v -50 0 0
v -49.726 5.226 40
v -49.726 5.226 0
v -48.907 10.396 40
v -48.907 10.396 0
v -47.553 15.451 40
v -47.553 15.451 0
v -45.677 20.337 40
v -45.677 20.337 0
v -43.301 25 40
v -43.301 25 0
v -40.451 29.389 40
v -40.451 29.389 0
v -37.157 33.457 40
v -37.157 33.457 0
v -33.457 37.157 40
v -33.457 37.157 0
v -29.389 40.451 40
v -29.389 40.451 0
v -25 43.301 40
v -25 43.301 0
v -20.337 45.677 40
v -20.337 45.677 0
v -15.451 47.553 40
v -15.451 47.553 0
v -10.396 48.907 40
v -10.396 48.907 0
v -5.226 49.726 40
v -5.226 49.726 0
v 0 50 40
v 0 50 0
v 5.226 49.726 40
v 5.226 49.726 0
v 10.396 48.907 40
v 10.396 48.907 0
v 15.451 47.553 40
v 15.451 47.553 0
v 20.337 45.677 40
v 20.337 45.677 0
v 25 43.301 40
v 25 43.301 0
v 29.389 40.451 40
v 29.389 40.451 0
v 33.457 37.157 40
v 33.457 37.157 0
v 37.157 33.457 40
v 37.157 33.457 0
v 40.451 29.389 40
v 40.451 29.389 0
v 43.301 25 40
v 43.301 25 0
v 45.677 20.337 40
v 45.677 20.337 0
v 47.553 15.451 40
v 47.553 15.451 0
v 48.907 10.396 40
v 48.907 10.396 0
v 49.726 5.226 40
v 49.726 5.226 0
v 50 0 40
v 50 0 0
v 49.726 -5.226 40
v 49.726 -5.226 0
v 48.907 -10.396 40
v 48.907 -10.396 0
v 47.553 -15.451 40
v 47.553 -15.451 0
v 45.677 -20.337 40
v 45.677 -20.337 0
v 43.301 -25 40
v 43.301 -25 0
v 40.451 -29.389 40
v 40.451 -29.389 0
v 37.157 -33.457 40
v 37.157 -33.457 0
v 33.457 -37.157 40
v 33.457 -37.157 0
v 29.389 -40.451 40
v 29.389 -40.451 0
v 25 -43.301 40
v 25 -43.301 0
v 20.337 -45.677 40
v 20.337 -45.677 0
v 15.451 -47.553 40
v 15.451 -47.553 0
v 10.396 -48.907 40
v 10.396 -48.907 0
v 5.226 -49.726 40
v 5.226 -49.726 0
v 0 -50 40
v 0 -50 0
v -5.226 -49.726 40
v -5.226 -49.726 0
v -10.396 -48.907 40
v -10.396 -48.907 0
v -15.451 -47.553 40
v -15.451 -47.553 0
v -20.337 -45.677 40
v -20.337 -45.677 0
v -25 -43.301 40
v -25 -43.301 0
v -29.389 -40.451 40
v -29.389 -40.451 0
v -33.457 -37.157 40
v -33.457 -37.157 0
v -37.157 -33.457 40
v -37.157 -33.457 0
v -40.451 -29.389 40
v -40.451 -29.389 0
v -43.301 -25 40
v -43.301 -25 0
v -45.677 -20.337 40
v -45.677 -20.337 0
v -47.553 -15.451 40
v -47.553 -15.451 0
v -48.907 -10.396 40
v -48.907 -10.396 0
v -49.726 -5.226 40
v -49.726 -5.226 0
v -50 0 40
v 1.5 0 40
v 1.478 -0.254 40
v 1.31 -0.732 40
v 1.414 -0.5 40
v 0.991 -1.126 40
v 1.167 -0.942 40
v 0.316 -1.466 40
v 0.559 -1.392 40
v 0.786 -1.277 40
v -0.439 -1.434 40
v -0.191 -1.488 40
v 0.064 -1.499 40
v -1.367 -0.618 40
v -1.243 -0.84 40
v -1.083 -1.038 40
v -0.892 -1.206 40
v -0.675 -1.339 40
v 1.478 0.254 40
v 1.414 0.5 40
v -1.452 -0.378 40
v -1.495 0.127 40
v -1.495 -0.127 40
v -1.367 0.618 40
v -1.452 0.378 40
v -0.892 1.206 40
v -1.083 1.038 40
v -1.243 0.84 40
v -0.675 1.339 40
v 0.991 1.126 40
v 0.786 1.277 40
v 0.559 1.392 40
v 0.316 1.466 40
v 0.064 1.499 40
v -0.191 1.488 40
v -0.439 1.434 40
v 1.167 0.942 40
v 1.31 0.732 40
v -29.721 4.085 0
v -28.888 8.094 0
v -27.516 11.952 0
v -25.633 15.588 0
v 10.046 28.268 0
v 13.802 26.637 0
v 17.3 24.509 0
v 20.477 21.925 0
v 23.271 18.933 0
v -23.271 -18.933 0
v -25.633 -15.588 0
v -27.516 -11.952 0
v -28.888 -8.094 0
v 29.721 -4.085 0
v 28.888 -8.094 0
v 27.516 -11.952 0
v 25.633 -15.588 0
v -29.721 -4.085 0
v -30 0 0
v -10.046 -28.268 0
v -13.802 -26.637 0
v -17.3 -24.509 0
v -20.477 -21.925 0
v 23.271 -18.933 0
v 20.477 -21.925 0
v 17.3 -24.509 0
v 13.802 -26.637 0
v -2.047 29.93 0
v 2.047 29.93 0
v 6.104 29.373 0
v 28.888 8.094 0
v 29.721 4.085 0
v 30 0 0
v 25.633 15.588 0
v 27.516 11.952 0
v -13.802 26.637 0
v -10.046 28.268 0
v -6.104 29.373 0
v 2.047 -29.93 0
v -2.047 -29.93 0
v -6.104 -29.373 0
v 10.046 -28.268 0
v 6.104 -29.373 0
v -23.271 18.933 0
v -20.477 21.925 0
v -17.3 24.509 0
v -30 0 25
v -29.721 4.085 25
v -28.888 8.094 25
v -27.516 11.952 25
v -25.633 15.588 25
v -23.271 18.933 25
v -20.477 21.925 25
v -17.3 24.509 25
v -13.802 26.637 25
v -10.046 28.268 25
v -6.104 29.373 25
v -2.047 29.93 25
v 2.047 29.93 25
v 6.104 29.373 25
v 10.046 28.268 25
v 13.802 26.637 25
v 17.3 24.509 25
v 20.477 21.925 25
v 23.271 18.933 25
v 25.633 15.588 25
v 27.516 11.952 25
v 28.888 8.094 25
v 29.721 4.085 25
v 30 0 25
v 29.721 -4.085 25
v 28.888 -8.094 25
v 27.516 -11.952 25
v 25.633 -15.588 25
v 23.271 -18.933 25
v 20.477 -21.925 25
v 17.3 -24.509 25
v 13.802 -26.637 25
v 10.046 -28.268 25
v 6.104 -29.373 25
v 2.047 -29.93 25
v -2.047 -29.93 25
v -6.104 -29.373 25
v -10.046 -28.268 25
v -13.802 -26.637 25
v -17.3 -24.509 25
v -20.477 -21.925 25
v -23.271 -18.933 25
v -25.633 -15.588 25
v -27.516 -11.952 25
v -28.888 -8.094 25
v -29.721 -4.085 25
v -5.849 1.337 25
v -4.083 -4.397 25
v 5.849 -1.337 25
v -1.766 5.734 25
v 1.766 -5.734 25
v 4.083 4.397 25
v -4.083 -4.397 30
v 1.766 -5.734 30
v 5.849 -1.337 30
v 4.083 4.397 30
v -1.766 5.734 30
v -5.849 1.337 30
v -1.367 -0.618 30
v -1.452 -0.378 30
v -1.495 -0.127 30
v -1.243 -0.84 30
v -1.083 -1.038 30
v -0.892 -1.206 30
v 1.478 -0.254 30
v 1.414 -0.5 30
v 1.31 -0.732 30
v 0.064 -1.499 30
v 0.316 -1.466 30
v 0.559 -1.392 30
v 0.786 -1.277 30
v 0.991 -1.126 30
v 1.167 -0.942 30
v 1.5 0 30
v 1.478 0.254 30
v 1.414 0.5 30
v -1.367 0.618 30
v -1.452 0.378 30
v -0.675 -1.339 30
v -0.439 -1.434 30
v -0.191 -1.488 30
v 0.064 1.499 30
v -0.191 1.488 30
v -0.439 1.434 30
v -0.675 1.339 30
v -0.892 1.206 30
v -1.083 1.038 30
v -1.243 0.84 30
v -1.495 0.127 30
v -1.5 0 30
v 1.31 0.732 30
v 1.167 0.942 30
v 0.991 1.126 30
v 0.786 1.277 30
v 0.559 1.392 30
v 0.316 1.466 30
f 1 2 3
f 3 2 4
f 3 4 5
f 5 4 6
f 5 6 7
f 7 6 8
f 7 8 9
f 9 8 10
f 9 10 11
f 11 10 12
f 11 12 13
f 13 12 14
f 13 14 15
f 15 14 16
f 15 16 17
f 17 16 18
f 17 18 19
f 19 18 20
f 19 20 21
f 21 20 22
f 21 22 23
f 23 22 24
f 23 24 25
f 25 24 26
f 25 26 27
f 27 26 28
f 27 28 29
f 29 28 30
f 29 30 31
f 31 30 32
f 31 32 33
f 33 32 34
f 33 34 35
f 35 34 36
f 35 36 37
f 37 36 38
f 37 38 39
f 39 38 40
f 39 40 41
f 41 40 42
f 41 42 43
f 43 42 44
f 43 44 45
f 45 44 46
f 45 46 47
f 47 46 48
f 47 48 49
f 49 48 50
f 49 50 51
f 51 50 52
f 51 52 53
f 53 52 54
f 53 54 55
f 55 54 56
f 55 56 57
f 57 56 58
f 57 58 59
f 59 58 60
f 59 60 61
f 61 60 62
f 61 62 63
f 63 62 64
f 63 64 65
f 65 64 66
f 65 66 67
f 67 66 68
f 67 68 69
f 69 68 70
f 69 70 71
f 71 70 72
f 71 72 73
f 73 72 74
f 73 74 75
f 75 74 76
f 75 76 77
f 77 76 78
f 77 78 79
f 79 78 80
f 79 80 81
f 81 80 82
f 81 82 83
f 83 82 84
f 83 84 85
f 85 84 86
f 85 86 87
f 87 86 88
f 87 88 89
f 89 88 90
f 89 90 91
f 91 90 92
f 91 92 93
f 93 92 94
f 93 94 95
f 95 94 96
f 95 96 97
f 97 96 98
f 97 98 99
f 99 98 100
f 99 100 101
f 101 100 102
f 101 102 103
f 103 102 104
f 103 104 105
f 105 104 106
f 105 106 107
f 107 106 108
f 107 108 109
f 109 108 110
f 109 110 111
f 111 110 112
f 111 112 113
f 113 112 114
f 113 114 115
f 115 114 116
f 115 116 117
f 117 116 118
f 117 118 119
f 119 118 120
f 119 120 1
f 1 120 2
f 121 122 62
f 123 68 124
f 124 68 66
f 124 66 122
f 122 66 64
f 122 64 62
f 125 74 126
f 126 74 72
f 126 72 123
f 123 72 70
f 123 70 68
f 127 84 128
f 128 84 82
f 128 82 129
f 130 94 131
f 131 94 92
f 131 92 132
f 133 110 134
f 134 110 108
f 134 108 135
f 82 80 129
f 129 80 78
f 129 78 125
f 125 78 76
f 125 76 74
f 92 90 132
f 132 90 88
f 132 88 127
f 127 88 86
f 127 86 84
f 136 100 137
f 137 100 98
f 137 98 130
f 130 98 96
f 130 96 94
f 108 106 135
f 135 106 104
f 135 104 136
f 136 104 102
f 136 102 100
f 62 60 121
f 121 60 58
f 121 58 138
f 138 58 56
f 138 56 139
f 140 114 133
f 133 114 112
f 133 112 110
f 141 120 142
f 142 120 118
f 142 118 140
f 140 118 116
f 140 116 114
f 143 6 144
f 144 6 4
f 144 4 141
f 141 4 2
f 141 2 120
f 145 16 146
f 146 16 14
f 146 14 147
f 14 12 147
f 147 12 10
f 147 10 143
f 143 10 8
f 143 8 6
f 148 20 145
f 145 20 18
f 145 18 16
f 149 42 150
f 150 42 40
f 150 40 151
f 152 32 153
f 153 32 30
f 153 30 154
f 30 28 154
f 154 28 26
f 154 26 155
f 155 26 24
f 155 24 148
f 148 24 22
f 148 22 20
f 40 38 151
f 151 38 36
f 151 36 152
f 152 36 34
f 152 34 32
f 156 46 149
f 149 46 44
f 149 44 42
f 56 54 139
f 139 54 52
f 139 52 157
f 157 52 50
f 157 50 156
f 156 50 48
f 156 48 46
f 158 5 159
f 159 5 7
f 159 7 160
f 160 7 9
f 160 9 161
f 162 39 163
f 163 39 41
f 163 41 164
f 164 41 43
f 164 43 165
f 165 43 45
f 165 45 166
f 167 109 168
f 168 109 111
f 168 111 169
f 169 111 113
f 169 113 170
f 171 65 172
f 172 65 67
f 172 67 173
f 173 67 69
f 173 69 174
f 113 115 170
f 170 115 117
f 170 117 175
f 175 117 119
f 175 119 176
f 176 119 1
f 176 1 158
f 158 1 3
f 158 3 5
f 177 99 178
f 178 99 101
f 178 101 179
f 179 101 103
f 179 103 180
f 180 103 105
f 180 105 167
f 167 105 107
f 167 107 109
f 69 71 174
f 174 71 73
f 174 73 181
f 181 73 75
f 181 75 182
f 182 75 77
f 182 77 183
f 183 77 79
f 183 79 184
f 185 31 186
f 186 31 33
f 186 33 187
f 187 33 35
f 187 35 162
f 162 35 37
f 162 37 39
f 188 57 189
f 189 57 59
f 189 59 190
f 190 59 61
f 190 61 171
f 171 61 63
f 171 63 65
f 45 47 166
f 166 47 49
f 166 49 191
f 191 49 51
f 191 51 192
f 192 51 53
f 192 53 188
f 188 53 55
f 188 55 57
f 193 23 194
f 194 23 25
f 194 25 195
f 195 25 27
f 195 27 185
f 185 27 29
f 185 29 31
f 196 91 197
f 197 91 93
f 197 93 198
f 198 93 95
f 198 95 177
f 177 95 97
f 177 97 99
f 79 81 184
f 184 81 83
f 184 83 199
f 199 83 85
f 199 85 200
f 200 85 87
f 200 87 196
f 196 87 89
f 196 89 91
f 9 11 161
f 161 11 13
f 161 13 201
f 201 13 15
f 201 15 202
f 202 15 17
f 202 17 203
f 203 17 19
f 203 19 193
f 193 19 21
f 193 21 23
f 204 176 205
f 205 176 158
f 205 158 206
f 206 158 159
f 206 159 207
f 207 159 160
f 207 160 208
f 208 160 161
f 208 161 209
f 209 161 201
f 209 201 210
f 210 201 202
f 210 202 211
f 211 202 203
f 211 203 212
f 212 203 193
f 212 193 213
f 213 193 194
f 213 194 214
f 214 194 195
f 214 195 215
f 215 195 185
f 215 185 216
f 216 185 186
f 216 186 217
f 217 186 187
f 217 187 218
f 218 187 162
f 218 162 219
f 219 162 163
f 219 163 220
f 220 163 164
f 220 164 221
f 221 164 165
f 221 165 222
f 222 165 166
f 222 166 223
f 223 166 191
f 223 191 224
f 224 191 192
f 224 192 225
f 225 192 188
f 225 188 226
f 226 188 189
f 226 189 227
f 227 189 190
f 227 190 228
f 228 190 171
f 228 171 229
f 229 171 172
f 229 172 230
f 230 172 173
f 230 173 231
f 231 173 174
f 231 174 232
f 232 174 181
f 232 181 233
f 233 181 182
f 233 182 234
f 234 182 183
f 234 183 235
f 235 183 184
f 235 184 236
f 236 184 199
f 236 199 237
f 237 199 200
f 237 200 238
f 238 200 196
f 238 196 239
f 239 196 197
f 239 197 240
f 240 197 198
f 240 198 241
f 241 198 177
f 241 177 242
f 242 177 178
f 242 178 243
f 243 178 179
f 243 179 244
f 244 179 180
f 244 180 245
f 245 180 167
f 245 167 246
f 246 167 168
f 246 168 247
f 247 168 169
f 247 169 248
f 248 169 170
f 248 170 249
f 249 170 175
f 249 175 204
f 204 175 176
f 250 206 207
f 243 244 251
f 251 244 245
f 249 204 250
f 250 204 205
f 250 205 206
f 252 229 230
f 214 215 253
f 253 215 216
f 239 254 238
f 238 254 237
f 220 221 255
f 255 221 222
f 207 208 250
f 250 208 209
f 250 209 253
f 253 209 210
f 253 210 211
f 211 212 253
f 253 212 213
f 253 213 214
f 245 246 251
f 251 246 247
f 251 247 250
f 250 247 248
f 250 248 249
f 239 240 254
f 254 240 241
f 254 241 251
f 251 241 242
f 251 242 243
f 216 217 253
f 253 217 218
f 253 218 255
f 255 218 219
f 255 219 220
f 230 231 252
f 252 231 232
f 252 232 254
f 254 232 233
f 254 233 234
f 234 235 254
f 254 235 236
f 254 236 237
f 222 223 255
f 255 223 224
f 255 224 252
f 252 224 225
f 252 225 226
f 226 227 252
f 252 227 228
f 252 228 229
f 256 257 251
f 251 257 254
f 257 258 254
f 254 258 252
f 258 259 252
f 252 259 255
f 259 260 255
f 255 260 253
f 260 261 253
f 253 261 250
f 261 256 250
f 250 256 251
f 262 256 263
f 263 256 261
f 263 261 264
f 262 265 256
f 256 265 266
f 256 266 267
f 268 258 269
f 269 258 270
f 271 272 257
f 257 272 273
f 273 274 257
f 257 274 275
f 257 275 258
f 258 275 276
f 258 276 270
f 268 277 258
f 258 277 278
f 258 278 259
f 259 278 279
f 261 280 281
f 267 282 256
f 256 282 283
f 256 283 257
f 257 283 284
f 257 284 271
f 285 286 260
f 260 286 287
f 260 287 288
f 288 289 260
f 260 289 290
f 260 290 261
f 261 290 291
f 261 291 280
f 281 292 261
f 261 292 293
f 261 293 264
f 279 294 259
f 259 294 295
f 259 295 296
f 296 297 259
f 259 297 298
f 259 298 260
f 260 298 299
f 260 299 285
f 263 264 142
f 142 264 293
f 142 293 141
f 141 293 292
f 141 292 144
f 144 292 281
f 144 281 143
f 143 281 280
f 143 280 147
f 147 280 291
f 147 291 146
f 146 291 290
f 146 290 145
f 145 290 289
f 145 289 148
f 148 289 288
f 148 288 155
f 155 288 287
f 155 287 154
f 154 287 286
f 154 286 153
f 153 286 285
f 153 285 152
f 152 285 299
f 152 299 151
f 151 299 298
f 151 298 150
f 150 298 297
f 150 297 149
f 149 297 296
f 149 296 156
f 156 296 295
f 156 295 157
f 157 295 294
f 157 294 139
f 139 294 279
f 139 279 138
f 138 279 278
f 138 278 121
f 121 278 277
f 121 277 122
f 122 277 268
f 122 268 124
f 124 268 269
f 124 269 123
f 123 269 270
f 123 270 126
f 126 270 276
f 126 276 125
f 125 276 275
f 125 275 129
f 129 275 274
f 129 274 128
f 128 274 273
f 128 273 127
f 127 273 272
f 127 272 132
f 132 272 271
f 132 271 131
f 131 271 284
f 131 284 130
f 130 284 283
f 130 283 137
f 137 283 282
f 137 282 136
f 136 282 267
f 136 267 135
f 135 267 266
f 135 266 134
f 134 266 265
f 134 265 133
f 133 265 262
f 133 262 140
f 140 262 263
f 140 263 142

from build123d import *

# Parameters (mm, degrees)
SKETCH1_R           = 50
BOSS_EXTRUDE1_DEPTH = 40
SKETCH2_R           = 30
CUT_EXTRUDE1_DEPTH  = 25
CUT_EXTRUDE2_DEPTH  = 5
SKETCH5_R           = 1.5
CUT_EXTRUDE3_DEPTH  = 40


with BuildPart() as part:
    # Sketch1 → Boss-Extrude1 (new body)
    with BuildSketch(Plane.XY):
        Circle(SKETCH1_R)
    extrude(amount=BOSS_EXTRUDE1_DEPTH)

    # Sketch2 → Cut-Extrude1 (cut)
    with BuildSketch(Plane(origin=(0, 0, 0), x_dir=(-1, 0, 0), z_dir=(0, 0, -1))):
        Circle(SKETCH2_R)
    extrude(amount=-CUT_EXTRUDE1_DEPTH, mode=Mode.SUBTRACT)

    # Sketch3 → Cut-Extrude2 (cut)
    with BuildSketch(Plane(origin=(0, 0, 25), x_dir=(-1, 0, 0), z_dir=(0, 0, -1))):
        Polygon((4.082774554, -4.396697846), (5.849039304, 1.337437558), (1.76626475, 5.734135404), (-4.082774554, 4.396697846), (-5.849039304, -1.337437558), (-1.76626475, -5.734135404), align=None)
    extrude(amount=-CUT_EXTRUDE2_DEPTH, mode=Mode.SUBTRACT)

    # Sketch5 → Cut-Extrude3 (cut)
    with BuildSketch(Plane.XY.offset(40)):
        Circle(SKETCH5_R)
    extrude(amount=-CUT_EXTRUDE3_DEPTH, mode=Mode.SUBTRACT)


solid = part.part
